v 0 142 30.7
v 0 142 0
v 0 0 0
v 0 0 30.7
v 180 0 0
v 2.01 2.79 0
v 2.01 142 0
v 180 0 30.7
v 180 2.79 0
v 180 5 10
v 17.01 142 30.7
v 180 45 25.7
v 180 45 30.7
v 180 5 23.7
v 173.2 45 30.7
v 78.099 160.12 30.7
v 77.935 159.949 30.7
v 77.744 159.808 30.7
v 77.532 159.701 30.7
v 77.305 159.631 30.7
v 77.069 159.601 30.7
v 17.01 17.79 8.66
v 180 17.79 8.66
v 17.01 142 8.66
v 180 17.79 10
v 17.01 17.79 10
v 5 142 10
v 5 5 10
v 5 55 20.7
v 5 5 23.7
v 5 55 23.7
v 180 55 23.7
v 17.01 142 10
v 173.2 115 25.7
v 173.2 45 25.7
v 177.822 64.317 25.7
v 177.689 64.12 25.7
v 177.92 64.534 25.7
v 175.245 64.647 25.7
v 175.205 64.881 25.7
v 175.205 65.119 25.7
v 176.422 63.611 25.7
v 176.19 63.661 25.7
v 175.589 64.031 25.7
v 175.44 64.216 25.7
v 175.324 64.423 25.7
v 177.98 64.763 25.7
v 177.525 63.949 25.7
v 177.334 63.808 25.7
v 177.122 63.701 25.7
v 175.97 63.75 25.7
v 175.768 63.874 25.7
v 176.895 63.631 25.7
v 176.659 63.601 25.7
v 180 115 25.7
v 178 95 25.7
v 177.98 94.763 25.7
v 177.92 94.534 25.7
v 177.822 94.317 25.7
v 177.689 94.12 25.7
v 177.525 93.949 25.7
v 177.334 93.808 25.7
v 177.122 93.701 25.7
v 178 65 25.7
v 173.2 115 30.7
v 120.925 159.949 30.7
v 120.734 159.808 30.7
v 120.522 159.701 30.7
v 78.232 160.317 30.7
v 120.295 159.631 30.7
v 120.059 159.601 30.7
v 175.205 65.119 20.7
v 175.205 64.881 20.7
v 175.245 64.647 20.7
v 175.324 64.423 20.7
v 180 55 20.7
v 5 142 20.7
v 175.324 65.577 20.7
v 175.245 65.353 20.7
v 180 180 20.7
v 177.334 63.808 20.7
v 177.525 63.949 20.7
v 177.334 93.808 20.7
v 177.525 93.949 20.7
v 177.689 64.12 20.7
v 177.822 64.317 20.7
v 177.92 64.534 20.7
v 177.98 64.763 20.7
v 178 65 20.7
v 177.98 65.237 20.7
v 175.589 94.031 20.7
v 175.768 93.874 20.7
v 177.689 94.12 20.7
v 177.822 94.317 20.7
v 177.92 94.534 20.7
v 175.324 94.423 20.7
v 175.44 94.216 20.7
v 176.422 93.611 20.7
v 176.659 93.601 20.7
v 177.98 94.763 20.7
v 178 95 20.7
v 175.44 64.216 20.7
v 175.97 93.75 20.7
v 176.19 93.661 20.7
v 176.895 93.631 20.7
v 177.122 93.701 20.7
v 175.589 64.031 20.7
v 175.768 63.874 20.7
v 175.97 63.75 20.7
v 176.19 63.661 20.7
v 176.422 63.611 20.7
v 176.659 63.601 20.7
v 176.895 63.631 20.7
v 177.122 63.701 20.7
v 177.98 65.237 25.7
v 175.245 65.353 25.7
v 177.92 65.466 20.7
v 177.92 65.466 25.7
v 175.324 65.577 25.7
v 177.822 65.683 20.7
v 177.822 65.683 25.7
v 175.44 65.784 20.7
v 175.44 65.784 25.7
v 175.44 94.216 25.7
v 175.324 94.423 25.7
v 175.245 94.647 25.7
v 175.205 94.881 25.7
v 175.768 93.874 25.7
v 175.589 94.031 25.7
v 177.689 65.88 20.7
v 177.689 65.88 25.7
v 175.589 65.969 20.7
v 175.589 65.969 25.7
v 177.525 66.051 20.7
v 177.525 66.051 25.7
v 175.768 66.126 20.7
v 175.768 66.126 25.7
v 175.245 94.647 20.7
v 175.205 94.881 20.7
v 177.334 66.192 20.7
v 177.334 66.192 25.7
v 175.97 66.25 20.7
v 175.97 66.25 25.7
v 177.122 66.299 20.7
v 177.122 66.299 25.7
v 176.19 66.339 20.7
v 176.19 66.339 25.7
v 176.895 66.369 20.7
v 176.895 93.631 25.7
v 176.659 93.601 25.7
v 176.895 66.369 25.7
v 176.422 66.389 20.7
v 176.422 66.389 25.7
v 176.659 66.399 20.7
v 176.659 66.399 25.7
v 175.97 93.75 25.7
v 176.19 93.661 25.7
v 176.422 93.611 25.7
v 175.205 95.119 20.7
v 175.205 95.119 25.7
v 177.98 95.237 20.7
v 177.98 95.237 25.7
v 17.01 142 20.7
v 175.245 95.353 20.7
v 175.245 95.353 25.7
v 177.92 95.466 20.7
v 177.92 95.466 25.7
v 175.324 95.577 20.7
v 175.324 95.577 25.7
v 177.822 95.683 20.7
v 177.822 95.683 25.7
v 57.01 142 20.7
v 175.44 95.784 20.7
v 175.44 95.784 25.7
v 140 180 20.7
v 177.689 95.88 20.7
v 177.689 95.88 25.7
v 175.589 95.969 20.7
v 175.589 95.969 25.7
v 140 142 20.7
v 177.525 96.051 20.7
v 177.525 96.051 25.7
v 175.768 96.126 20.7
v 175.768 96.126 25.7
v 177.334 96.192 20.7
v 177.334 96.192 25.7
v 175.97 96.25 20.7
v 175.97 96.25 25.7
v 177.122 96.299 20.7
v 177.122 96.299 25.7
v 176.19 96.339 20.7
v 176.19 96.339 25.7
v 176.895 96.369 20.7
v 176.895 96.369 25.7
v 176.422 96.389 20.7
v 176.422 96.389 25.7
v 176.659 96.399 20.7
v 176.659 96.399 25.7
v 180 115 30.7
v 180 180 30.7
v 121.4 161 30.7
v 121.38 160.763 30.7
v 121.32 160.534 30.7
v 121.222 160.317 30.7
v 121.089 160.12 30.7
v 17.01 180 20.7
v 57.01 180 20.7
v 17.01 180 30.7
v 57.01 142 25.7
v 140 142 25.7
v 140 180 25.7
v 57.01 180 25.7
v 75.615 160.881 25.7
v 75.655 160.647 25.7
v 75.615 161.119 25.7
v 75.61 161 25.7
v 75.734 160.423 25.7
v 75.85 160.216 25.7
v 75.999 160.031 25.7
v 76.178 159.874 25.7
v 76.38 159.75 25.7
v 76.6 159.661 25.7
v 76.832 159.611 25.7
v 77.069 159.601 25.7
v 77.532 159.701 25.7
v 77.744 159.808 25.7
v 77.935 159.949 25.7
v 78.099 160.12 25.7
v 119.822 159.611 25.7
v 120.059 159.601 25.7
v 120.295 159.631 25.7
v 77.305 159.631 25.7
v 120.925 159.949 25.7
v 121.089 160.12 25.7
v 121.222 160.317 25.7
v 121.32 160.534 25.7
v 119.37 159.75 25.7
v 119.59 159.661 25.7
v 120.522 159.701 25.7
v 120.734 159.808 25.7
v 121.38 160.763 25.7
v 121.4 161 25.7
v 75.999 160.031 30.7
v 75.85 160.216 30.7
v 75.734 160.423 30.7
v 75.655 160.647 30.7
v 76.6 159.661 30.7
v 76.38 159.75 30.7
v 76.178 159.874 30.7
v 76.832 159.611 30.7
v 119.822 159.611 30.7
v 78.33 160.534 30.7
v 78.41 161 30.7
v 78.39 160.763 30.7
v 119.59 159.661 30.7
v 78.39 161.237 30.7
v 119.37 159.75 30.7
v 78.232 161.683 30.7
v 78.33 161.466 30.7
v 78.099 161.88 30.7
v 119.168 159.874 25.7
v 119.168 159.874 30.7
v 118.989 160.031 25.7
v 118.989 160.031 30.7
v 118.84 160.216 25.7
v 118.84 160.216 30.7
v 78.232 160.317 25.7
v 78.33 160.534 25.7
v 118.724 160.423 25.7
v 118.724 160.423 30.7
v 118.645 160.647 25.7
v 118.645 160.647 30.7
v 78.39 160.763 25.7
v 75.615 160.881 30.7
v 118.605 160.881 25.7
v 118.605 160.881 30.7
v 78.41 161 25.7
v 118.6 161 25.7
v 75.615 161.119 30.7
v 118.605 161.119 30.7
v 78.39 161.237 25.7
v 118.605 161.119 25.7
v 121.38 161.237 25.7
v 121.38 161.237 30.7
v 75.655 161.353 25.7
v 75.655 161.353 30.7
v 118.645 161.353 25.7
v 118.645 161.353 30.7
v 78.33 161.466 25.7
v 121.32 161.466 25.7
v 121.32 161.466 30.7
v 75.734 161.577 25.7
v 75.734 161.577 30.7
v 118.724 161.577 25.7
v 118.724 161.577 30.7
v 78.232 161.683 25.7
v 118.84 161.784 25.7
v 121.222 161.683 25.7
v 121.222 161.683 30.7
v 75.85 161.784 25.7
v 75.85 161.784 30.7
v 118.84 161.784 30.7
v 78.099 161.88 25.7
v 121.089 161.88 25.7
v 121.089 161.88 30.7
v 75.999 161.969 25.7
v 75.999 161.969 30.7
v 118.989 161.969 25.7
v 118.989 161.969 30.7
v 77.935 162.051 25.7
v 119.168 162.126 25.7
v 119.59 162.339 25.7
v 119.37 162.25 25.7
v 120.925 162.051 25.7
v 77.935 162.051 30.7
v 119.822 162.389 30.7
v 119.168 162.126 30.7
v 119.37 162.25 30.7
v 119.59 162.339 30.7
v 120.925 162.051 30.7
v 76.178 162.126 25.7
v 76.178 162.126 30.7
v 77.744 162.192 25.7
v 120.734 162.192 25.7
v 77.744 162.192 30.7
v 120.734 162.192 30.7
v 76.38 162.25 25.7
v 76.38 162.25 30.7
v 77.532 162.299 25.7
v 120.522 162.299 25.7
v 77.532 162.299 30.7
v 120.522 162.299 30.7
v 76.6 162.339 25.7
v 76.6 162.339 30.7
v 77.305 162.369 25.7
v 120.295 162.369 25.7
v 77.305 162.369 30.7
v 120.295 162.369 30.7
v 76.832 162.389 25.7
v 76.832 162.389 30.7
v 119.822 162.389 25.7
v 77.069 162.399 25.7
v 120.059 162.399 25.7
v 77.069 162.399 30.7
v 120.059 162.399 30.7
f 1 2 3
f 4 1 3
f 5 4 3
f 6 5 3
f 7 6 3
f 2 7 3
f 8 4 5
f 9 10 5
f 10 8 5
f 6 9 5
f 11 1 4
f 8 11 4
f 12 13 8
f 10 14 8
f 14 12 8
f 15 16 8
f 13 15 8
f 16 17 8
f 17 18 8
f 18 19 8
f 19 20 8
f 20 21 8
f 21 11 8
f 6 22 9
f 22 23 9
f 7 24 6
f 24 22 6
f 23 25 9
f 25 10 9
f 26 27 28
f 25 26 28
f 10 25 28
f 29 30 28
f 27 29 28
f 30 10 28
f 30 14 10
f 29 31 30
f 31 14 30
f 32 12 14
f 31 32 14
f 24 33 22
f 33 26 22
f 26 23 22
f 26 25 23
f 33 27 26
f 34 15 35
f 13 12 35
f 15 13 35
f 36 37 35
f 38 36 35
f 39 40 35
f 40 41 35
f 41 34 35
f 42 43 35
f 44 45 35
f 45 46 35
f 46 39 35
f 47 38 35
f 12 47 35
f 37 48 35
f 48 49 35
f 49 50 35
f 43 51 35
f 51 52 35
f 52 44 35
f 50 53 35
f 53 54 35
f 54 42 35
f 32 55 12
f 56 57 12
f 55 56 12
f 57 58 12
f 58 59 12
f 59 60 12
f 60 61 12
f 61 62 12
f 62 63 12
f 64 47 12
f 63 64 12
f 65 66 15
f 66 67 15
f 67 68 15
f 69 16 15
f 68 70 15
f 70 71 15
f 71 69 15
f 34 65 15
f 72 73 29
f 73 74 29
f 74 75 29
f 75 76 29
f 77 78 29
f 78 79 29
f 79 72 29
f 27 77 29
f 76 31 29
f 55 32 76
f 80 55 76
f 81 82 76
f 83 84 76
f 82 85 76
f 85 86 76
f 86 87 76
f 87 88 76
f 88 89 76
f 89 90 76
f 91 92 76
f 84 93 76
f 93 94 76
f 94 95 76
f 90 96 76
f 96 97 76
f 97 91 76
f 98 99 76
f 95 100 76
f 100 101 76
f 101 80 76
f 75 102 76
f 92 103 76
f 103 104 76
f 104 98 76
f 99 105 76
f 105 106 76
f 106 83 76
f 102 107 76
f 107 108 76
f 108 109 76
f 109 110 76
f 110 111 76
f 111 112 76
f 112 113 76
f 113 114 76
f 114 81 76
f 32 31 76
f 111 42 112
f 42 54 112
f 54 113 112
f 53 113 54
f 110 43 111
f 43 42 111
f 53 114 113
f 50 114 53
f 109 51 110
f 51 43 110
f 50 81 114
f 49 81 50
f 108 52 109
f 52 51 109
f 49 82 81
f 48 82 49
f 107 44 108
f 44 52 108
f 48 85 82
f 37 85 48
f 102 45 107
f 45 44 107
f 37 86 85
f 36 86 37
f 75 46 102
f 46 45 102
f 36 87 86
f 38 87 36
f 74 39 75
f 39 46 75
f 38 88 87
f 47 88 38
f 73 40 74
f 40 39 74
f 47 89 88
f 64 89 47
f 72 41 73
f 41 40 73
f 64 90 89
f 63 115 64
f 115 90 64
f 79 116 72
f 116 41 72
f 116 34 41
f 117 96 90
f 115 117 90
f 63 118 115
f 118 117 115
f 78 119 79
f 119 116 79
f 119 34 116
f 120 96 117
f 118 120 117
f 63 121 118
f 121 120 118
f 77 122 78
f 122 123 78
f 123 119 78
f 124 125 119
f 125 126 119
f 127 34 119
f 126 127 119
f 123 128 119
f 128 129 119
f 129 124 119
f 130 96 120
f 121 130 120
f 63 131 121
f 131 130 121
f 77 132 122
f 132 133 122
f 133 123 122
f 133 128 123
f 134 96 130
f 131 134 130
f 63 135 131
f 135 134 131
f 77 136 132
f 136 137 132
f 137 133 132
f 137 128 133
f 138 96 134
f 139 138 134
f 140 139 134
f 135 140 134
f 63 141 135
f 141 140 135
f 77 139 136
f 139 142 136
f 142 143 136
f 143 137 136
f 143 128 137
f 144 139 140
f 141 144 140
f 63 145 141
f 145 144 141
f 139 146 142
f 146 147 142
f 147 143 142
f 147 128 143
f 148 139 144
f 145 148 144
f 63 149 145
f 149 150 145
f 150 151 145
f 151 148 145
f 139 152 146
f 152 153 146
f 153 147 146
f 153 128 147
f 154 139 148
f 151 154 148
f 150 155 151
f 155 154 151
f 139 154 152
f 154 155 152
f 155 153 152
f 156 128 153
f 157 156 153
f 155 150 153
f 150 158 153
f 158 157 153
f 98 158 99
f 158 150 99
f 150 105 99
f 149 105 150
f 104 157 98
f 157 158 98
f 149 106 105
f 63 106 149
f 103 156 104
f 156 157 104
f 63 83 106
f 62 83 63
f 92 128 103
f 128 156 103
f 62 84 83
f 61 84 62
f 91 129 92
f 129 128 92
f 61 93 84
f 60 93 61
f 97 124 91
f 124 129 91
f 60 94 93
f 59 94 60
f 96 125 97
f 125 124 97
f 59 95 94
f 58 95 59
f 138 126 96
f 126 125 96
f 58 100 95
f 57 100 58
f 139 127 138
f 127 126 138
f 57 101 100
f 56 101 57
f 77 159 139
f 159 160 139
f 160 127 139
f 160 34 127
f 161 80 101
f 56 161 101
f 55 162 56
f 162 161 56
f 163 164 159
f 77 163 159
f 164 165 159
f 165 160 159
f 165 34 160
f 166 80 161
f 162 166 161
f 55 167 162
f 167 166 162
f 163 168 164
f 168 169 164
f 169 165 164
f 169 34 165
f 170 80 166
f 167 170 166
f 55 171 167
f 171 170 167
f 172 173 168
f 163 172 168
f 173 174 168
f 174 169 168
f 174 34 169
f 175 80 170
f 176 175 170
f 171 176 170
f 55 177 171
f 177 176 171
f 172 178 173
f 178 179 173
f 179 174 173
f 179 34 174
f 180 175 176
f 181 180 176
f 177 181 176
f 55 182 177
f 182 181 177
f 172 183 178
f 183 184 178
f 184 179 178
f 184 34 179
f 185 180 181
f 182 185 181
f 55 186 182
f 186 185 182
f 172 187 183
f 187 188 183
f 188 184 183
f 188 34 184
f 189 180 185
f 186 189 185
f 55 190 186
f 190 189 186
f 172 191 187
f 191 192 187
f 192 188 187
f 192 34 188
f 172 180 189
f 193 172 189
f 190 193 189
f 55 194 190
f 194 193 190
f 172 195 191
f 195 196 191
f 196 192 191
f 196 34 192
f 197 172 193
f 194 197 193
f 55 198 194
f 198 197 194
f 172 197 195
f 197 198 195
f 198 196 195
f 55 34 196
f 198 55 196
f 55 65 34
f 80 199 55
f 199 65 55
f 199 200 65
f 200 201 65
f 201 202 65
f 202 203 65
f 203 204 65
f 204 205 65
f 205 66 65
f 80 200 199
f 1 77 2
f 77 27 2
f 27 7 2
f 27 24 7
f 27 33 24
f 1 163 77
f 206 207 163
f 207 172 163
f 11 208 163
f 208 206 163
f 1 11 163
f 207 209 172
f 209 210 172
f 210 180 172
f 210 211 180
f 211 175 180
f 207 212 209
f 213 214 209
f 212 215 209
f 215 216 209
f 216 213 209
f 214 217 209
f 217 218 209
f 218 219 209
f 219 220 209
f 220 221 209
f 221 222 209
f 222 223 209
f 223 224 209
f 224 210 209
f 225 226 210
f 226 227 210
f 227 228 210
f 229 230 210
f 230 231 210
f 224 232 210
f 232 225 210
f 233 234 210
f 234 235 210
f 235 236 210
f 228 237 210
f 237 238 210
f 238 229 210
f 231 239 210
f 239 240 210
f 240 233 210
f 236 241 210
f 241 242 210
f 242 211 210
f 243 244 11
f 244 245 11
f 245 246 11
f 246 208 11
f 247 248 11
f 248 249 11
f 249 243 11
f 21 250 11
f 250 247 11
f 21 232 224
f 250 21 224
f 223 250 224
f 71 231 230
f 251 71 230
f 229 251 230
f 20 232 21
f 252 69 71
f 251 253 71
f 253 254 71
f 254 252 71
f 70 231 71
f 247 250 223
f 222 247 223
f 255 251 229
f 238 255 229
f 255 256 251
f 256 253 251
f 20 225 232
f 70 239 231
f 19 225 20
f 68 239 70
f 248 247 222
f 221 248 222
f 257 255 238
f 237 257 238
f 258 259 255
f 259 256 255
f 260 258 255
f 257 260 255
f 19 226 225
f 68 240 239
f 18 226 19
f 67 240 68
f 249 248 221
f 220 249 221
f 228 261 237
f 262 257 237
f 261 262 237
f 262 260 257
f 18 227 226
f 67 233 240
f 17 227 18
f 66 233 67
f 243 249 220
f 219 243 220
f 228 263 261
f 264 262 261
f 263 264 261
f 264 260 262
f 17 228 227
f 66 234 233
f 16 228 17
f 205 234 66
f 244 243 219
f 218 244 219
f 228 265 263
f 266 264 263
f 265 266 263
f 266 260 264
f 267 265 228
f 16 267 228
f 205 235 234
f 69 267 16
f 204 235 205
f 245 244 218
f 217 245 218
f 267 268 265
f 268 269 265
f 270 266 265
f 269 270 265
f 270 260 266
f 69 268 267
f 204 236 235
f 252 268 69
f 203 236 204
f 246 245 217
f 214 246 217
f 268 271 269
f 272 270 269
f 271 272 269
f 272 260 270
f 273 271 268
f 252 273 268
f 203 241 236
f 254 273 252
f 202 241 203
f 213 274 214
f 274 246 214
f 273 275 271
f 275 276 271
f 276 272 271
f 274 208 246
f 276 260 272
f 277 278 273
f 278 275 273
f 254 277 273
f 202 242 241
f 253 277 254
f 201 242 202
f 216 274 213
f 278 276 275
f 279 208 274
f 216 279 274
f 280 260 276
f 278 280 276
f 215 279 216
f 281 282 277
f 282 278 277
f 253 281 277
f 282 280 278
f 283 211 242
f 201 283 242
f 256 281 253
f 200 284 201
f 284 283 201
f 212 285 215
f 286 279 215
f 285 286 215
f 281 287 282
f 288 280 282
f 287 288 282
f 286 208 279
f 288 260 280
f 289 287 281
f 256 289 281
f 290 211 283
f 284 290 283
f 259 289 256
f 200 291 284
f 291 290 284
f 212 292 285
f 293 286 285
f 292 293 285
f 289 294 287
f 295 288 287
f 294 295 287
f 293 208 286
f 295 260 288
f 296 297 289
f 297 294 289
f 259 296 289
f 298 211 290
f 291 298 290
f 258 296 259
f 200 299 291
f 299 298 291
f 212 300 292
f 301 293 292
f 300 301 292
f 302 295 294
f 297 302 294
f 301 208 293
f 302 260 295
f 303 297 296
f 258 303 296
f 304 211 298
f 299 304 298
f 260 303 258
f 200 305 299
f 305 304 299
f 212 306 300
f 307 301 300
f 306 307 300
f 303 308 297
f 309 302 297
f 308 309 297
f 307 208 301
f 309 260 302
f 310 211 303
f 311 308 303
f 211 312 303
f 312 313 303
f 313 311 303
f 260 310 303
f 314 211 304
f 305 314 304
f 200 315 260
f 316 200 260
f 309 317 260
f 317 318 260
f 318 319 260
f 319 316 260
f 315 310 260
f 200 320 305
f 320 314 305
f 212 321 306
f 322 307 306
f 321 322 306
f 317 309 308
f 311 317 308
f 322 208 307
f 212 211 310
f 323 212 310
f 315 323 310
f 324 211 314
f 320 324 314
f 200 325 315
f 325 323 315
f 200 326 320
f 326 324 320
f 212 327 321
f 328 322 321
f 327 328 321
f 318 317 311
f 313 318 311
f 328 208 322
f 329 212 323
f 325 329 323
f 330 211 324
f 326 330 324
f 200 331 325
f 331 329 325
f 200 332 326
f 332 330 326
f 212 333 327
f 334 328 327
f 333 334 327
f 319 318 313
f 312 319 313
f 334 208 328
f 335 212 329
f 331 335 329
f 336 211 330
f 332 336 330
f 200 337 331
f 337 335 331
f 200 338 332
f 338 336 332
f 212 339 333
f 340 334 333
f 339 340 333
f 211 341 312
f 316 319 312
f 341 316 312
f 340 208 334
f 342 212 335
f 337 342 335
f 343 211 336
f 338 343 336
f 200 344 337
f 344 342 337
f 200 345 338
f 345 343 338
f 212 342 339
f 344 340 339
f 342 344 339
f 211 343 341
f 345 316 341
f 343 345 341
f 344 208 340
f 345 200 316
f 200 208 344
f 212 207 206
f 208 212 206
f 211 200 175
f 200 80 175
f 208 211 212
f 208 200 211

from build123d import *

# Parameters (mm, degrees)
CROQUIS1_W              = 180
CROQUIS1_H              = 180
SALIENTE_EXTRUIR1_DEPTH = 30.7
CROQUIS2_W              = 162.99
CROQUIS2_H              = 162.21
CORTAR_EXTRUIR1_DEPTH   = 20.7
CROQUIS4_W              = 175
CROQUIS4_H              = 10.7
CORTAR_EXTRUIR2_DEPTH   = 175
CORTAR_EXTRUIR3_REACH   = 258.403
CROQUIS5_W              = 30.7
CROQUIS5_H              = 38
CROQUIS6_W              = 82.99
CROQUIS6_H              = 38
CORTAR_EXTRUIR4_DEPTH   = 5
CROQUIS7_W              = 6.8
CROQUIS7_H              = 70
CORTAR_EXTRUIR5_DEPTH   = 5
CROQUIS8_W              = 175
CROQUIS8_H              = 50
CORTAR_EXTRUIR6_DEPTH   = 3
CHAFL_N1_SIZE           = 15
CHAFL_N1_SIZE2          = 8.660254038
CROQUIS9_R              = 1.4
CORTAR_EXTRUIR7_DEPTH   = 20


with BuildPart() as part:
    # Croquis1 → Saliente-Extruir1 (new body)
    with BuildSketch(Plane.XY):
        with Locations((90, 90)):
            Rectangle(CROQUIS1_W, CROQUIS1_H)
    extrude(amount=SALIENTE_EXTRUIR1_DEPTH)

    # Croquis2 → Cortar-Extruir1 (cut)
    with BuildSketch(Plane(origin=(0, 0, 0), x_dir=(-1, 0, 0), z_dir=(0, 0, -1))):
        with Locations((-98.505, 98.895)):
            Rectangle(CROQUIS2_W, CROQUIS2_H)
    extrude(amount=-CORTAR_EXTRUIR1_DEPTH, mode=Mode.SUBTRACT)

    # Croquis4 → Cortar-Extruir2 (cut)
    with BuildSketch(Plane(origin=(0, 180, 0), x_dir=(1, 0, 0), z_dir=(0, 1, 0))):
        with Locations((92.5, -15.35)):
            Rectangle(CROQUIS4_W, CROQUIS4_H)
    extrude(amount=-CORTAR_EXTRUIR2_DEPTH, mode=Mode.SUBTRACT)

    # Cortar-Extruir3: up to this face of the body (flat: up to its plane)
    cortar_extruir3_end = Plane(part.part.faces().sort_by_distance((17.01, 98.895, 5))[0])
    # Croquis5 → Cortar-Extruir3 (cut, up to the picked face)
    with BuildSketch(Plane.ZY, mode=Mode.PRIVATE) as cortar_extruir3_sk1:
        with Locations((15.35, 161)):
            Rectangle(CROQUIS5_W, CROQUIS5_H)
    cortar_extruir3_tool1 = split(extrude(cortar_extruir3_sk1.sketch, amount=-CORTAR_EXTRUIR3_REACH, mode=Mode.PRIVATE), bisect_by=cortar_extruir3_end, keep=Keep.BOTH, mode=Mode.PRIVATE)
    add(cortar_extruir3_tool1.solids().sort_by(Axis((0, 161, 15.35), (1, 0, 0)))[0], mode=Mode.SUBTRACT)

    # Croquis6 → Cortar-Extruir4 (cut)
    with BuildSketch(Plane(origin=(0, 0, 20.7), x_dir=(-1, 0, 0), z_dir=(0, 0, -1))):
        with Locations((-98.505, 161)):
            Rectangle(CROQUIS6_W, CROQUIS6_H)
    extrude(amount=-CORTAR_EXTRUIR4_DEPTH, mode=Mode.SUBTRACT)

    # Croquis7 → Cortar-Extruir5 (cut)
    with BuildSketch(Plane.XY.offset(30.7)):
        with Locations((176.6, 80)):
            Rectangle(CROQUIS7_W, CROQUIS7_H)
    extrude(amount=-CORTAR_EXTRUIR5_DEPTH, mode=Mode.SUBTRACT)

    # Croquis8 → Cortar-Extruir6 (cut)
    with BuildSketch(Plane(origin=(0, 0, 20.7), x_dir=(-1, 0, 0), z_dir=(0, 0, -1))):
        with Locations((-92.5, 30)):
            Rectangle(CROQUIS8_W, CROQUIS8_H)
    extrude(amount=-CORTAR_EXTRUIR6_DEPTH, mode=Mode.SUBTRACT)

    # Chaflán1
    chafl_n1_edges = [part.edges().sort_by_distance(p)[0] for p in [
        (98.505, 17.79, 0),
        (17.01, 79.895, 0),
    ]]
    chafl_n1_side = [part.faces().sort_by_distance(p)[0] for p in [
        (8.505, 139.707315983, 0),
    ]]
    chamfer(chafl_n1_edges, length=CHAFL_N1_SIZE, length2=CHAFL_N1_SIZE2, reference=chafl_n1_side[0])

    # Croquis9 → Cortar-Extruir7 (cut)
    with BuildSketch(Plane.XY.offset(30.7)):
        with Locations((176.6, 65)):
            Circle(CROQUIS9_R)
        with Locations((176.6, 95)):
            Circle(CROQUIS9_R)
        with Locations((120, 161)):
            Circle(CROQUIS9_R)
        with Locations((77.01, 161)):
            Circle(CROQUIS9_R)
    extrude(amount=-CORTAR_EXTRUIR7_DEPTH, mode=Mode.SUBTRACT)


solid = part.part
